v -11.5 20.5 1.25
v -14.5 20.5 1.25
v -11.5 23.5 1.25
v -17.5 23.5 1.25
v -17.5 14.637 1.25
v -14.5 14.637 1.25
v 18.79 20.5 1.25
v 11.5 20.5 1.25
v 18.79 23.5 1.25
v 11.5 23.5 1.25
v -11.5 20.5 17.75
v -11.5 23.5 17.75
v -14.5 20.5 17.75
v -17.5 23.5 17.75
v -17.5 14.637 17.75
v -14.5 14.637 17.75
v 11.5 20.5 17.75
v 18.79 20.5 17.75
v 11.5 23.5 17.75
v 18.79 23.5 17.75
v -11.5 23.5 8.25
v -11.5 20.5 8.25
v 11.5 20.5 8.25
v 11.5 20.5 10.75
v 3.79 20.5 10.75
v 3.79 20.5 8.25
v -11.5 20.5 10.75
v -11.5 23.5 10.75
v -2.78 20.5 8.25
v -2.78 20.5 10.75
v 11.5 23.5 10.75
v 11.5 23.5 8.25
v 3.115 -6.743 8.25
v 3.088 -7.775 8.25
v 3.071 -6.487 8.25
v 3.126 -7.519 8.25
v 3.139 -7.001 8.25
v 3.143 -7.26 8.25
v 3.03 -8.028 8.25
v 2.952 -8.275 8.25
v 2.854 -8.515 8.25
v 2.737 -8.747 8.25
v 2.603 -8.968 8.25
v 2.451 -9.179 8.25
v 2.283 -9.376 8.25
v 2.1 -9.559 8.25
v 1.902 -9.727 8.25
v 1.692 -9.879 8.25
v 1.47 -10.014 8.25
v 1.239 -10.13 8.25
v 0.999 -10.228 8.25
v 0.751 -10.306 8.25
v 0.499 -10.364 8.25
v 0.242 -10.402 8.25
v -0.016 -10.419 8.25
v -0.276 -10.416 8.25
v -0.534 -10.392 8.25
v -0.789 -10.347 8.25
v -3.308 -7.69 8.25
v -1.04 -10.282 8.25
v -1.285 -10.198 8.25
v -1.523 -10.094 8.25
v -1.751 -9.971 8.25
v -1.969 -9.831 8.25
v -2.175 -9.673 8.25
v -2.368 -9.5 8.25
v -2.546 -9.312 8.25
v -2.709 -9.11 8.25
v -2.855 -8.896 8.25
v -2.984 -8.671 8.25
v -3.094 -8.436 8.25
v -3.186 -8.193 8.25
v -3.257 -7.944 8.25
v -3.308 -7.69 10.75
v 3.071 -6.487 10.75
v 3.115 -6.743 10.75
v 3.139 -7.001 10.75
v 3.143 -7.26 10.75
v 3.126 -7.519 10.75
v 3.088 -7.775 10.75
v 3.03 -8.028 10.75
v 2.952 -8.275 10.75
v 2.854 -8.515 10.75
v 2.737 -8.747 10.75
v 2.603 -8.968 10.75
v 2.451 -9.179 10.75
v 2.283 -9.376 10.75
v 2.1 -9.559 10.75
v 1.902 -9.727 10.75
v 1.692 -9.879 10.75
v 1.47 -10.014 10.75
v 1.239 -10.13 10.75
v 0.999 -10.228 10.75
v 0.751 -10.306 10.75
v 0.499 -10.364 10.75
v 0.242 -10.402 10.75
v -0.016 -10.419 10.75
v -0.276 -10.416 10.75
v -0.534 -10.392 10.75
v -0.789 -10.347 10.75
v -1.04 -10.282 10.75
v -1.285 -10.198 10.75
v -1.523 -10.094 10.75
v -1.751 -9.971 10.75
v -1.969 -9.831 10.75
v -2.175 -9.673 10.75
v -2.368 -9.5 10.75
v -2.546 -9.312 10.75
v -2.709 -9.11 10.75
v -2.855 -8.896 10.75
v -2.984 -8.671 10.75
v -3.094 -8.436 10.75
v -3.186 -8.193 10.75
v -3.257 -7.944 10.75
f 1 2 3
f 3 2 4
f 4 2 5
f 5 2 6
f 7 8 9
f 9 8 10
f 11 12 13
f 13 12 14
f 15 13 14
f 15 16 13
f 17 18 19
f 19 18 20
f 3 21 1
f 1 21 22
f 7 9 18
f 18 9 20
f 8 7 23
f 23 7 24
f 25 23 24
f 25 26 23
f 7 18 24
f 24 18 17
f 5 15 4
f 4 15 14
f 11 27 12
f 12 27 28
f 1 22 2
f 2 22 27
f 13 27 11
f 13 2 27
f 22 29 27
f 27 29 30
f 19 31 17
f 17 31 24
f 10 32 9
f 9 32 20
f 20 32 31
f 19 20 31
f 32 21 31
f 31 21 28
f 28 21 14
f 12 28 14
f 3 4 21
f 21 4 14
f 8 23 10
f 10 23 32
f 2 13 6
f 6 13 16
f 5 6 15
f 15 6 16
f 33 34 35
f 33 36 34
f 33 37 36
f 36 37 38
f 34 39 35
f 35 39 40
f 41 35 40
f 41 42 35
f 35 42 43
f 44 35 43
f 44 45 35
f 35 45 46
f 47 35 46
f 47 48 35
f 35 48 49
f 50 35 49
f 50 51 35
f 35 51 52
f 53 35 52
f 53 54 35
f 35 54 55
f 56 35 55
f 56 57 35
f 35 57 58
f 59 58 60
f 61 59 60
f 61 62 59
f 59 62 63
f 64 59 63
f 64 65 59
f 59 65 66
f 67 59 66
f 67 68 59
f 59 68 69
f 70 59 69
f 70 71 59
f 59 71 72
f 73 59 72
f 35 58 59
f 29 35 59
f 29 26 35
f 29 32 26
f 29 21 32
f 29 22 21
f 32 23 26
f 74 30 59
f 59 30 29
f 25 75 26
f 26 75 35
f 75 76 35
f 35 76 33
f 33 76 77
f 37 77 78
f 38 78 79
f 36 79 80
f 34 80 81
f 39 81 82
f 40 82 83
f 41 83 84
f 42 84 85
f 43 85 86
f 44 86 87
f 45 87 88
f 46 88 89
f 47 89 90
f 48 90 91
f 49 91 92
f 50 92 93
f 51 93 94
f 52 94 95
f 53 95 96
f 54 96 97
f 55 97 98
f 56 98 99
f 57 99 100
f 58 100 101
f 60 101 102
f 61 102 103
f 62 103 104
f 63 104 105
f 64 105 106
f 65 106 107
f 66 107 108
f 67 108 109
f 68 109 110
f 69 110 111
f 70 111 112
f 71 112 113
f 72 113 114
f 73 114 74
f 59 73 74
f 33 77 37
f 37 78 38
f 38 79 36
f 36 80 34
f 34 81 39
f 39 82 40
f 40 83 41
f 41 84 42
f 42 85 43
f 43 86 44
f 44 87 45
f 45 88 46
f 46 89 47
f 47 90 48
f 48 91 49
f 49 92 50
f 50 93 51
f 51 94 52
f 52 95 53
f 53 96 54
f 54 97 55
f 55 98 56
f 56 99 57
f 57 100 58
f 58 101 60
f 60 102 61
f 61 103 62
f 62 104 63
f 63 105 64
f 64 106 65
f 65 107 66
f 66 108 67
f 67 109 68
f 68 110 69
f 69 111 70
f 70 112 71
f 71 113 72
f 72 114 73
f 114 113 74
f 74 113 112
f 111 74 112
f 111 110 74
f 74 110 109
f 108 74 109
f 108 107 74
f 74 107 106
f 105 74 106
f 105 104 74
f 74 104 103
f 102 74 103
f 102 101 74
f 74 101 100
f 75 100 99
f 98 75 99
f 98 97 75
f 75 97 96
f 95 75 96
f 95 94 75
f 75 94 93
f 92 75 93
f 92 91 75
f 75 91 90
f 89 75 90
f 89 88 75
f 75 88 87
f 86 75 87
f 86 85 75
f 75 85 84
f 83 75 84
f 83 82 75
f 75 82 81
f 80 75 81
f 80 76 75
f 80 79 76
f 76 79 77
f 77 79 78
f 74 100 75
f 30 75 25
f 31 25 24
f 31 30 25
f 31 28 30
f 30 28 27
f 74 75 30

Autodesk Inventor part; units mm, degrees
ref_plane "YZ Plane" through (0, 0, 0) normal (1, 0, 0) x (0, 1, 0)
ref_plane "Work Plane5" through (0, 0, 9.5) normal (0, 0, 1) x (1, 0, 0)
sketch "Sketch4" plane through (0, 0, 9.5) normal (0, 0, 1) x (1, 0, 0)
  arc A0 (-3.3085, -7.69) -> (3.0707, -6.4871) centre (-0.1029, -7.1736) ccw
  line L0 (3.0707, -6.4871) -> (3.7901, 20.5)
  line L1 (-2.7798, 20.5) -> (-3.3085, -7.69)
  line L2 (-3.8298, 20.5) -> (-2.7798, 20.5)
  line L3 (3.7901, 20.5) -> (4.8401, 20.5)
  line L4 (-11.5, 20.5) -> (-12.5, 20.5) projected
  line L5 (11.5, 20.5) -> (9.5, 20.5) projected
  line L6 (-12.5, 20.5) -> (-2.7798, 20.5)
  line L7 (3.7901, 20.5) -> (18.7901, 20.5)
  line L8 (-12.5, 20.5) -> (-12.5, 14.637)
  line L9 (-12.5, 14.637) -> (-12.5, 20.5)
  line L10 (-12.5, 14.637) -> (-14.5, 14.637)
  line L11 (-14.5, 14.637) -> (-14.5, 22.5)
  line L12 (-14.5, 22.5) -> (18.7901, 22.5)
  line L13 (18.7901, 22.5) -> (18.7901, 20.5)
  line L14 (-2.7798, 20.5) -> (3.7901, 20.5)
  point P0 (0, 0)
  point P1 (-0.3189, -10.4133)
  dimension "d34" = 15
  dimension "d36" = 2
  dimension "d52" = 2
extrude "Extrusion7" add sketch "Sketch4" along normal mid plane 2.5 contours L1 L14 L0 A0
extrude "Extrusion8" add sketch "Sketch4" along normal mid plane 17 contours L2 L6 L4 L8 L10 L11 L12 L13 L7 L5 L3 L14
ref_plane "Work Plane4" through (-12.5, 22.5, 0) normal (0, 1, 0) x (1, 0, 0)
sketch "Sketch5" plane through (-12.5, 22.5, 0) normal (0, 1, 0) x (1, 0, 0)
  line L0 (-2, -11.5) -> (27, -11.5)
  line L1 (27, -11.5) -> (27, -7.5)
  line L2 (27, -7.5) -> (-2, -7.5)
  line L3 (-2, -7.5) -> (-2, -11.5)
  line L4 (15.5, -9.5) -> (9.5, -9.5) projected
  line L5 (-2, -11.5) -> (27, -7.5) construction
  line L6 (27, -11.5) -> (-2, -7.5) construction
  line L7 (0, -1) -> (25, -1)
  line L8 (25, -1) -> (25, -7.5)
  line L9 (25, -7.5) -> (0, -7.5)
  line L10 (0, -7.5) -> (0, -1)
  line L11 (0, -9.5) -> (0, -18) projected
  line L12 (0, -18) -> (31.2901, -18) projected
  line L13 (0, -11.5) -> (25, -11.5)
  line L14 (25, -11.5) -> (25, -18)
  line L15 (25, -18) -> (0, -18)
  line L16 (0, -18) -> (0, -11.5)
  point P0 (12.5, 0)
  point P1 (12.5, -9.5)
extrude "Extrusion9" cut sketch "Sketch5" against normal through all contours L0 L14 L12 L11 | L10 L7 L8 L2
sketch "Sketch6" plane through (-14.5, 22.5, 1) normal (0, 1, 0) x (1, 0, 0)
  line L0 (2, -6.5) -> (27, -6.5) projected
  line L1 (2, 0) -> (4, 0)
  line L2 (4, 0) -> (4, -6.5)
  line L3 (4, -6.5) -> (2, -6.5)
  line L4 (2, -6.5) -> (2, 0)
  line L5 (27, -10.5) -> (2, -10.5) projected
  line L6 (2, -17) -> (4, -17)
  line L7 (4, -17) -> (4, -10.5)
  line L8 (4, -10.5) -> (2, -10.5)
  line L9 (2, -10.5) -> (2, -17)
  line L10 (27, 0) -> (25, 0)
  line L11 (25, 0) -> (25, -6.5)
  line L12 (25, -6.5) -> (27, -6.5)
  line L13 (27, -6.5) -> (27, 0)
  line L14 (27, -10.5) -> (25, -10.5)
  line L15 (25, -10.5) -> (25, -17)
  line L16 (25, -17) -> (27, -17)
  line L17 (27, -17) -> (27, -10.5)
  point P0 (14.5, 1)
  dimension "d43" = 2
  dimension "d44" = 2
  dimension "d45" = 2
  dimension "d46" = 2
extrude "Extrusion10" add sketch "Sketch6" along normal mid plane 4
sketch "Sketch7" plane through (18.7901, 22.5, 18) normal (0, 1, 0) x (1, 0, 0)
  line L0 (-8.2901, 0) -> (0, 0) projected
  line L1 (0, 17) -> (5, 17)
  line L2 (5, 17) -> (5, 0)
  line L3 (5, 0) -> (0, 0)
  line L4 (0, 0) -> (0, 17)
  point P0 (-18.7901, 18)
  dimension "d49" = 5
extrude "Extrusion11" cut sketch "Sketch7" against normal through all
sketch "Sketch8" plane through (0, 0, 18) normal (0, 0, 1) x (1, 0, 0)
  line L0 (12.5, 24.5) -> (18.7901, 24.5)
  line L1 (18.7901, 24.5) -> (18.7901, 22.5)
  line L2 (18.7901, 22.5) -> (12.5, 22.5)
  line L3 (12.5, 22.5) -> (12.5, 24.5)
  line L4 (-12.5, 24.5) -> (-14.5, 24.5)
  line L5 (-14.5, 24.5) -> (-14.5, 22.5)
  line L6 (-14.5, 22.5) -> (-12.5, 22.5)
  line L7 (-12.5, 22.5) -> (-12.5, 24.5)
  point P0 (0, 0)
extrude "Extrusion12" add sketch "Sketch8" against normal blind 17
sketch "Sketch9" plane through (-10.5, 22.5, 11.5) normal (0, 1, 0) x (1, 0, 0)
  line L0 (0, 0) -> (0, 4)
  line L1 (21, 0) -> (21, 4)
  line L2 (23, 0) -> (21, 0) projected
  line L3 (23, 0) -> (23, 4) projected
  line L4 (21, 4) -> (23, 4) projected
  line L5 (-2, 4) -> (0, 4) projected
  line L6 (-2, 0) -> (-2, 4) projected
  line L7 (0, 0) -> (-2, 0) projected
  point P0 (10.5, 11.5)
extrude "Extrusion13" add sketch "Sketch9" along normal blind 2
sketch "Sketch10" plane through (-10.5, 20.5, 11.5) normal (0, 0, 1) x (1, 0, 0)
  line L0 (0, 4) -> (21, 4)
  line L1 (21, 4) -> (21, 2)
  line L2 (21, 2) -> (0, 2)
  line L3 (0, 2) -> (0, 4)
  point P0 (10.5, -20.5)
extrude "Extrusion14" add sketch "Sketch10" against normal blind 4
sketch "Sketch12" plane through (0, 0, 18) normal (0, 0, 1) x (1, 0, 0)
  line L0 (18.7901, 24.5) -> (18.7901, 20.5) projected
  line L1 (-14.5, 24.5) -> (18.7901, 24.5)
  line L2 (18.7901, 24.5) -> (18.7901, 23.5)
  line L3 (18.7901, 23.5) -> (-14.5, 23.5)
  line L4 (-14.5, 23.5) -> (-14.5, 24.5)
  point P0 (0, 0)
  dimension "d59" = 1
extrude "Extrusion15" cut sketch "Sketch12" against normal through all
sketch "Sketch13" plane through (0, 0, 18) normal (0, 0, 1) x (1, 0, 0)
  line L0 (-14.5, 23.5) -> (-15.5, 23.5)
  line L1 (-15.5, 23.5) -> (-15.5, 14.637)
  line L2 (-15.5, 14.637) -> (-14.5, 14.637)
  line L3 (-14.5, 14.637) -> (-14.5, 23.5)
  point P0 (0, 0)
  dimension "d62" = 1
extrude "Extrusion16" add sketch "Sketch13" against normal blind 17
sketch "Sketch15" plane through (10.5, 23.5, 18) normal (0, 1, 0) x (1, 0, 0)
  line L0 (0, 17) -> (3, 17)
  line L1 (3, 17) -> (3, 10.5)
  line L2 (3, 10.5) -> (0, 10.5)
  line L3 (0, 10.5) -> (0, 17)
  line L4 (0, 0) -> (3, 0)
  line L5 (3, 0) -> (3, 6.4739)
  line L6 (3, 6.4739) -> (0, 6.4739)
  line L7 (0, 6.4739) -> (0, 0)
  point P0 (-10.5, 18)
  dimension "d70" = 3
extrude "Extrusion18" cut sketch "Sketch15" against normal up to next
sketch "Sketch16" plane through (-10.5, 23.5, 11.5) normal (0, 1, 0) x (1, 0, 0)
  line L0 (0, 10.5) -> (1, 10.5)
  line L1 (1, 10.5) -> (1, -6.5)
  line L2 (1, -6.5) -> (0, -6.5)
  line L3 (0, -6.5) -> (0, 10.5)
  point P0 (10.5, 11.5)
extrude "Extrusion19" add sketch "Sketch16" against normal blind 3
sketch "Sketch17" plane through (-12.5, 14.637, 18) normal (1, 0, 0) x (0, 0, -1)
  line L0 (17, 5.863) -> (0, 5.863) projected
  line L1 (0, 0) -> (0, 5.863) projected
  line L2 (17, 0) -> (0, 0) projected
  line L3 (17, 5.863) -> (17, 0) projected
  point P0 (18, -14.637)
extrude "Extrusion20" cut sketch "Sketch17" against normal blind 2
sketch "Sketch18" plane through (-15.5, 14.637, 18) normal (-1, 0, 0) x (0, 0, 1)
  line L0 (0, 5.863) -> (-17, 5.863) projected
  line L1 (0, 8.863) -> (0, 0) projected
  line L2 (0, 8.863) -> (-17, 8.863) projected
  line L3 (-17, 0) -> (-17, 8.863) projected
  line L4 (0, 0) -> (-17, 0) projected
  point P0 (-18, -14.637)
extrude "Extrusion21" add sketch "Sketch18" along normal blind 2
sketch "Sketch19" plane through (18.7901, 23.5, 18) normal (0, 1, 0) x (1, 0, 0)
  line L0 (-28.2901, 17) -> (-30.2901, 17)
  line L1 (-30.2901, 17) -> (-30.2901, 10.5)
  line L2 (-30.2901, 10.5) -> (-28.2901, 10.5)
  line L3 (-28.2901, 10.5) -> (-28.2901, 17)
  line L4 (-28.2901, 0) -> (-36.2901, 0) projected
  line L5 (-28.2901, 6.5) -> (-30.2901, 6.5)
  line L6 (-30.2901, 6.5) -> (-30.2901, 0)
  line L7 (-30.2901, 0) -> (-28.2901, 0)
  line L8 (-28.2901, 0) -> (-28.2901, 6.5)
  line L9 (-5.2901, 17) -> (-7.2901, 17)
  line L10 (-7.2901, 17) -> (-7.2901, 0)
  line L11 (-7.2901, 0) -> (-5.2901, 0)
  line L12 (-5.2901, 0) -> (-5.2901, 17)
  point P0 (-18.7901, 18)
  dimension "d77" = 2
  dimension "d78" = 2
extrude "Extrusion22" cut sketch "Sketch19" against normal up to next contours L3 L2 L1 L0 | L4 L6 L5 L8
extrude "Extrusion23" add sketch "Sketch19" against normal blind 3 contours L12 L11 L10 L9
sketch "Sketch20" plane through (18.7901, 20.5, 1) normal (0, -1, 0) x (1, 0, 0)
  line L0 (-22.0985, 7.25) -> (-15.646, 7.25) projected
  line L1 (-15.646, 9.75) -> (-22.0985, 9.75) projected
  line L2 (-7.2901, 17) -> (-7.2901, 10.5261) projected
  line L3 (-30.2901, 17) -> (-30.2901, 10.5) projected
  line L4 (-30.2901, 13) -> (-7.2901, 13)
  line L5 (-7.2901, 13) -> (-7.2901, 9.75)
  line L6 (-7.2901, 9.75) -> (-30.2901, 9.75)
  line L7 (-30.2901, 9.75) -> (-30.2901, 13)
  line L8 (-30.2901, 4) -> (-7.2901, 4)
  line L9 (-7.2901, 4) -> (-7.2901, 7.25)
  line L10 (-7.2901, 7.25) -> (-30.2901, 7.25)
  line L11 (-30.2901, 7.25) -> (-30.2901, 4)
  point P0 (-18.7901, -1)
  point P1 (-15.7194, 7.25)
  point P2 (-15.7194, 9.75)
extrude "Extrusion24" cut sketch "Sketch20" against normal through all
sketch "Sketch21" plane through (18.7901, 23.5, 18) normal (0, 1, 0) x (1, 0, 0)
  line L0 (0, 17) -> (0, 0) projected
  line L1 (-36.2901, 17) -> (0, 17)
  line L2 (0, 17) -> (0, 16.75)
  line L3 (0, 16.75) -> (-36.2901, 16.75)
  line L4 (-36.2901, 16.75) -> (-36.2901, 17)
  line L5 (-36.2901, 0) -> (-36.2901, 17) projected
  line L6 (0, 0) -> (-36.2901, 0)
  line L7 (-36.2901, 0) -> (-36.2901, 0.25)
  line L8 (-36.2901, 0.25) -> (0, 0.25)
  line L9 (0, 0.25) -> (0, 0)
  point P0 (-18.7901, 18)
  dimension "d85" = 0.25
  dimension "d86" = 0.25
extrude "Extrusion25" cut sketch "Sketch21" against normal through all contours L0 L3 L4 L1 | L0 L6 L5 L8
properties part number "cover sepatu32"
